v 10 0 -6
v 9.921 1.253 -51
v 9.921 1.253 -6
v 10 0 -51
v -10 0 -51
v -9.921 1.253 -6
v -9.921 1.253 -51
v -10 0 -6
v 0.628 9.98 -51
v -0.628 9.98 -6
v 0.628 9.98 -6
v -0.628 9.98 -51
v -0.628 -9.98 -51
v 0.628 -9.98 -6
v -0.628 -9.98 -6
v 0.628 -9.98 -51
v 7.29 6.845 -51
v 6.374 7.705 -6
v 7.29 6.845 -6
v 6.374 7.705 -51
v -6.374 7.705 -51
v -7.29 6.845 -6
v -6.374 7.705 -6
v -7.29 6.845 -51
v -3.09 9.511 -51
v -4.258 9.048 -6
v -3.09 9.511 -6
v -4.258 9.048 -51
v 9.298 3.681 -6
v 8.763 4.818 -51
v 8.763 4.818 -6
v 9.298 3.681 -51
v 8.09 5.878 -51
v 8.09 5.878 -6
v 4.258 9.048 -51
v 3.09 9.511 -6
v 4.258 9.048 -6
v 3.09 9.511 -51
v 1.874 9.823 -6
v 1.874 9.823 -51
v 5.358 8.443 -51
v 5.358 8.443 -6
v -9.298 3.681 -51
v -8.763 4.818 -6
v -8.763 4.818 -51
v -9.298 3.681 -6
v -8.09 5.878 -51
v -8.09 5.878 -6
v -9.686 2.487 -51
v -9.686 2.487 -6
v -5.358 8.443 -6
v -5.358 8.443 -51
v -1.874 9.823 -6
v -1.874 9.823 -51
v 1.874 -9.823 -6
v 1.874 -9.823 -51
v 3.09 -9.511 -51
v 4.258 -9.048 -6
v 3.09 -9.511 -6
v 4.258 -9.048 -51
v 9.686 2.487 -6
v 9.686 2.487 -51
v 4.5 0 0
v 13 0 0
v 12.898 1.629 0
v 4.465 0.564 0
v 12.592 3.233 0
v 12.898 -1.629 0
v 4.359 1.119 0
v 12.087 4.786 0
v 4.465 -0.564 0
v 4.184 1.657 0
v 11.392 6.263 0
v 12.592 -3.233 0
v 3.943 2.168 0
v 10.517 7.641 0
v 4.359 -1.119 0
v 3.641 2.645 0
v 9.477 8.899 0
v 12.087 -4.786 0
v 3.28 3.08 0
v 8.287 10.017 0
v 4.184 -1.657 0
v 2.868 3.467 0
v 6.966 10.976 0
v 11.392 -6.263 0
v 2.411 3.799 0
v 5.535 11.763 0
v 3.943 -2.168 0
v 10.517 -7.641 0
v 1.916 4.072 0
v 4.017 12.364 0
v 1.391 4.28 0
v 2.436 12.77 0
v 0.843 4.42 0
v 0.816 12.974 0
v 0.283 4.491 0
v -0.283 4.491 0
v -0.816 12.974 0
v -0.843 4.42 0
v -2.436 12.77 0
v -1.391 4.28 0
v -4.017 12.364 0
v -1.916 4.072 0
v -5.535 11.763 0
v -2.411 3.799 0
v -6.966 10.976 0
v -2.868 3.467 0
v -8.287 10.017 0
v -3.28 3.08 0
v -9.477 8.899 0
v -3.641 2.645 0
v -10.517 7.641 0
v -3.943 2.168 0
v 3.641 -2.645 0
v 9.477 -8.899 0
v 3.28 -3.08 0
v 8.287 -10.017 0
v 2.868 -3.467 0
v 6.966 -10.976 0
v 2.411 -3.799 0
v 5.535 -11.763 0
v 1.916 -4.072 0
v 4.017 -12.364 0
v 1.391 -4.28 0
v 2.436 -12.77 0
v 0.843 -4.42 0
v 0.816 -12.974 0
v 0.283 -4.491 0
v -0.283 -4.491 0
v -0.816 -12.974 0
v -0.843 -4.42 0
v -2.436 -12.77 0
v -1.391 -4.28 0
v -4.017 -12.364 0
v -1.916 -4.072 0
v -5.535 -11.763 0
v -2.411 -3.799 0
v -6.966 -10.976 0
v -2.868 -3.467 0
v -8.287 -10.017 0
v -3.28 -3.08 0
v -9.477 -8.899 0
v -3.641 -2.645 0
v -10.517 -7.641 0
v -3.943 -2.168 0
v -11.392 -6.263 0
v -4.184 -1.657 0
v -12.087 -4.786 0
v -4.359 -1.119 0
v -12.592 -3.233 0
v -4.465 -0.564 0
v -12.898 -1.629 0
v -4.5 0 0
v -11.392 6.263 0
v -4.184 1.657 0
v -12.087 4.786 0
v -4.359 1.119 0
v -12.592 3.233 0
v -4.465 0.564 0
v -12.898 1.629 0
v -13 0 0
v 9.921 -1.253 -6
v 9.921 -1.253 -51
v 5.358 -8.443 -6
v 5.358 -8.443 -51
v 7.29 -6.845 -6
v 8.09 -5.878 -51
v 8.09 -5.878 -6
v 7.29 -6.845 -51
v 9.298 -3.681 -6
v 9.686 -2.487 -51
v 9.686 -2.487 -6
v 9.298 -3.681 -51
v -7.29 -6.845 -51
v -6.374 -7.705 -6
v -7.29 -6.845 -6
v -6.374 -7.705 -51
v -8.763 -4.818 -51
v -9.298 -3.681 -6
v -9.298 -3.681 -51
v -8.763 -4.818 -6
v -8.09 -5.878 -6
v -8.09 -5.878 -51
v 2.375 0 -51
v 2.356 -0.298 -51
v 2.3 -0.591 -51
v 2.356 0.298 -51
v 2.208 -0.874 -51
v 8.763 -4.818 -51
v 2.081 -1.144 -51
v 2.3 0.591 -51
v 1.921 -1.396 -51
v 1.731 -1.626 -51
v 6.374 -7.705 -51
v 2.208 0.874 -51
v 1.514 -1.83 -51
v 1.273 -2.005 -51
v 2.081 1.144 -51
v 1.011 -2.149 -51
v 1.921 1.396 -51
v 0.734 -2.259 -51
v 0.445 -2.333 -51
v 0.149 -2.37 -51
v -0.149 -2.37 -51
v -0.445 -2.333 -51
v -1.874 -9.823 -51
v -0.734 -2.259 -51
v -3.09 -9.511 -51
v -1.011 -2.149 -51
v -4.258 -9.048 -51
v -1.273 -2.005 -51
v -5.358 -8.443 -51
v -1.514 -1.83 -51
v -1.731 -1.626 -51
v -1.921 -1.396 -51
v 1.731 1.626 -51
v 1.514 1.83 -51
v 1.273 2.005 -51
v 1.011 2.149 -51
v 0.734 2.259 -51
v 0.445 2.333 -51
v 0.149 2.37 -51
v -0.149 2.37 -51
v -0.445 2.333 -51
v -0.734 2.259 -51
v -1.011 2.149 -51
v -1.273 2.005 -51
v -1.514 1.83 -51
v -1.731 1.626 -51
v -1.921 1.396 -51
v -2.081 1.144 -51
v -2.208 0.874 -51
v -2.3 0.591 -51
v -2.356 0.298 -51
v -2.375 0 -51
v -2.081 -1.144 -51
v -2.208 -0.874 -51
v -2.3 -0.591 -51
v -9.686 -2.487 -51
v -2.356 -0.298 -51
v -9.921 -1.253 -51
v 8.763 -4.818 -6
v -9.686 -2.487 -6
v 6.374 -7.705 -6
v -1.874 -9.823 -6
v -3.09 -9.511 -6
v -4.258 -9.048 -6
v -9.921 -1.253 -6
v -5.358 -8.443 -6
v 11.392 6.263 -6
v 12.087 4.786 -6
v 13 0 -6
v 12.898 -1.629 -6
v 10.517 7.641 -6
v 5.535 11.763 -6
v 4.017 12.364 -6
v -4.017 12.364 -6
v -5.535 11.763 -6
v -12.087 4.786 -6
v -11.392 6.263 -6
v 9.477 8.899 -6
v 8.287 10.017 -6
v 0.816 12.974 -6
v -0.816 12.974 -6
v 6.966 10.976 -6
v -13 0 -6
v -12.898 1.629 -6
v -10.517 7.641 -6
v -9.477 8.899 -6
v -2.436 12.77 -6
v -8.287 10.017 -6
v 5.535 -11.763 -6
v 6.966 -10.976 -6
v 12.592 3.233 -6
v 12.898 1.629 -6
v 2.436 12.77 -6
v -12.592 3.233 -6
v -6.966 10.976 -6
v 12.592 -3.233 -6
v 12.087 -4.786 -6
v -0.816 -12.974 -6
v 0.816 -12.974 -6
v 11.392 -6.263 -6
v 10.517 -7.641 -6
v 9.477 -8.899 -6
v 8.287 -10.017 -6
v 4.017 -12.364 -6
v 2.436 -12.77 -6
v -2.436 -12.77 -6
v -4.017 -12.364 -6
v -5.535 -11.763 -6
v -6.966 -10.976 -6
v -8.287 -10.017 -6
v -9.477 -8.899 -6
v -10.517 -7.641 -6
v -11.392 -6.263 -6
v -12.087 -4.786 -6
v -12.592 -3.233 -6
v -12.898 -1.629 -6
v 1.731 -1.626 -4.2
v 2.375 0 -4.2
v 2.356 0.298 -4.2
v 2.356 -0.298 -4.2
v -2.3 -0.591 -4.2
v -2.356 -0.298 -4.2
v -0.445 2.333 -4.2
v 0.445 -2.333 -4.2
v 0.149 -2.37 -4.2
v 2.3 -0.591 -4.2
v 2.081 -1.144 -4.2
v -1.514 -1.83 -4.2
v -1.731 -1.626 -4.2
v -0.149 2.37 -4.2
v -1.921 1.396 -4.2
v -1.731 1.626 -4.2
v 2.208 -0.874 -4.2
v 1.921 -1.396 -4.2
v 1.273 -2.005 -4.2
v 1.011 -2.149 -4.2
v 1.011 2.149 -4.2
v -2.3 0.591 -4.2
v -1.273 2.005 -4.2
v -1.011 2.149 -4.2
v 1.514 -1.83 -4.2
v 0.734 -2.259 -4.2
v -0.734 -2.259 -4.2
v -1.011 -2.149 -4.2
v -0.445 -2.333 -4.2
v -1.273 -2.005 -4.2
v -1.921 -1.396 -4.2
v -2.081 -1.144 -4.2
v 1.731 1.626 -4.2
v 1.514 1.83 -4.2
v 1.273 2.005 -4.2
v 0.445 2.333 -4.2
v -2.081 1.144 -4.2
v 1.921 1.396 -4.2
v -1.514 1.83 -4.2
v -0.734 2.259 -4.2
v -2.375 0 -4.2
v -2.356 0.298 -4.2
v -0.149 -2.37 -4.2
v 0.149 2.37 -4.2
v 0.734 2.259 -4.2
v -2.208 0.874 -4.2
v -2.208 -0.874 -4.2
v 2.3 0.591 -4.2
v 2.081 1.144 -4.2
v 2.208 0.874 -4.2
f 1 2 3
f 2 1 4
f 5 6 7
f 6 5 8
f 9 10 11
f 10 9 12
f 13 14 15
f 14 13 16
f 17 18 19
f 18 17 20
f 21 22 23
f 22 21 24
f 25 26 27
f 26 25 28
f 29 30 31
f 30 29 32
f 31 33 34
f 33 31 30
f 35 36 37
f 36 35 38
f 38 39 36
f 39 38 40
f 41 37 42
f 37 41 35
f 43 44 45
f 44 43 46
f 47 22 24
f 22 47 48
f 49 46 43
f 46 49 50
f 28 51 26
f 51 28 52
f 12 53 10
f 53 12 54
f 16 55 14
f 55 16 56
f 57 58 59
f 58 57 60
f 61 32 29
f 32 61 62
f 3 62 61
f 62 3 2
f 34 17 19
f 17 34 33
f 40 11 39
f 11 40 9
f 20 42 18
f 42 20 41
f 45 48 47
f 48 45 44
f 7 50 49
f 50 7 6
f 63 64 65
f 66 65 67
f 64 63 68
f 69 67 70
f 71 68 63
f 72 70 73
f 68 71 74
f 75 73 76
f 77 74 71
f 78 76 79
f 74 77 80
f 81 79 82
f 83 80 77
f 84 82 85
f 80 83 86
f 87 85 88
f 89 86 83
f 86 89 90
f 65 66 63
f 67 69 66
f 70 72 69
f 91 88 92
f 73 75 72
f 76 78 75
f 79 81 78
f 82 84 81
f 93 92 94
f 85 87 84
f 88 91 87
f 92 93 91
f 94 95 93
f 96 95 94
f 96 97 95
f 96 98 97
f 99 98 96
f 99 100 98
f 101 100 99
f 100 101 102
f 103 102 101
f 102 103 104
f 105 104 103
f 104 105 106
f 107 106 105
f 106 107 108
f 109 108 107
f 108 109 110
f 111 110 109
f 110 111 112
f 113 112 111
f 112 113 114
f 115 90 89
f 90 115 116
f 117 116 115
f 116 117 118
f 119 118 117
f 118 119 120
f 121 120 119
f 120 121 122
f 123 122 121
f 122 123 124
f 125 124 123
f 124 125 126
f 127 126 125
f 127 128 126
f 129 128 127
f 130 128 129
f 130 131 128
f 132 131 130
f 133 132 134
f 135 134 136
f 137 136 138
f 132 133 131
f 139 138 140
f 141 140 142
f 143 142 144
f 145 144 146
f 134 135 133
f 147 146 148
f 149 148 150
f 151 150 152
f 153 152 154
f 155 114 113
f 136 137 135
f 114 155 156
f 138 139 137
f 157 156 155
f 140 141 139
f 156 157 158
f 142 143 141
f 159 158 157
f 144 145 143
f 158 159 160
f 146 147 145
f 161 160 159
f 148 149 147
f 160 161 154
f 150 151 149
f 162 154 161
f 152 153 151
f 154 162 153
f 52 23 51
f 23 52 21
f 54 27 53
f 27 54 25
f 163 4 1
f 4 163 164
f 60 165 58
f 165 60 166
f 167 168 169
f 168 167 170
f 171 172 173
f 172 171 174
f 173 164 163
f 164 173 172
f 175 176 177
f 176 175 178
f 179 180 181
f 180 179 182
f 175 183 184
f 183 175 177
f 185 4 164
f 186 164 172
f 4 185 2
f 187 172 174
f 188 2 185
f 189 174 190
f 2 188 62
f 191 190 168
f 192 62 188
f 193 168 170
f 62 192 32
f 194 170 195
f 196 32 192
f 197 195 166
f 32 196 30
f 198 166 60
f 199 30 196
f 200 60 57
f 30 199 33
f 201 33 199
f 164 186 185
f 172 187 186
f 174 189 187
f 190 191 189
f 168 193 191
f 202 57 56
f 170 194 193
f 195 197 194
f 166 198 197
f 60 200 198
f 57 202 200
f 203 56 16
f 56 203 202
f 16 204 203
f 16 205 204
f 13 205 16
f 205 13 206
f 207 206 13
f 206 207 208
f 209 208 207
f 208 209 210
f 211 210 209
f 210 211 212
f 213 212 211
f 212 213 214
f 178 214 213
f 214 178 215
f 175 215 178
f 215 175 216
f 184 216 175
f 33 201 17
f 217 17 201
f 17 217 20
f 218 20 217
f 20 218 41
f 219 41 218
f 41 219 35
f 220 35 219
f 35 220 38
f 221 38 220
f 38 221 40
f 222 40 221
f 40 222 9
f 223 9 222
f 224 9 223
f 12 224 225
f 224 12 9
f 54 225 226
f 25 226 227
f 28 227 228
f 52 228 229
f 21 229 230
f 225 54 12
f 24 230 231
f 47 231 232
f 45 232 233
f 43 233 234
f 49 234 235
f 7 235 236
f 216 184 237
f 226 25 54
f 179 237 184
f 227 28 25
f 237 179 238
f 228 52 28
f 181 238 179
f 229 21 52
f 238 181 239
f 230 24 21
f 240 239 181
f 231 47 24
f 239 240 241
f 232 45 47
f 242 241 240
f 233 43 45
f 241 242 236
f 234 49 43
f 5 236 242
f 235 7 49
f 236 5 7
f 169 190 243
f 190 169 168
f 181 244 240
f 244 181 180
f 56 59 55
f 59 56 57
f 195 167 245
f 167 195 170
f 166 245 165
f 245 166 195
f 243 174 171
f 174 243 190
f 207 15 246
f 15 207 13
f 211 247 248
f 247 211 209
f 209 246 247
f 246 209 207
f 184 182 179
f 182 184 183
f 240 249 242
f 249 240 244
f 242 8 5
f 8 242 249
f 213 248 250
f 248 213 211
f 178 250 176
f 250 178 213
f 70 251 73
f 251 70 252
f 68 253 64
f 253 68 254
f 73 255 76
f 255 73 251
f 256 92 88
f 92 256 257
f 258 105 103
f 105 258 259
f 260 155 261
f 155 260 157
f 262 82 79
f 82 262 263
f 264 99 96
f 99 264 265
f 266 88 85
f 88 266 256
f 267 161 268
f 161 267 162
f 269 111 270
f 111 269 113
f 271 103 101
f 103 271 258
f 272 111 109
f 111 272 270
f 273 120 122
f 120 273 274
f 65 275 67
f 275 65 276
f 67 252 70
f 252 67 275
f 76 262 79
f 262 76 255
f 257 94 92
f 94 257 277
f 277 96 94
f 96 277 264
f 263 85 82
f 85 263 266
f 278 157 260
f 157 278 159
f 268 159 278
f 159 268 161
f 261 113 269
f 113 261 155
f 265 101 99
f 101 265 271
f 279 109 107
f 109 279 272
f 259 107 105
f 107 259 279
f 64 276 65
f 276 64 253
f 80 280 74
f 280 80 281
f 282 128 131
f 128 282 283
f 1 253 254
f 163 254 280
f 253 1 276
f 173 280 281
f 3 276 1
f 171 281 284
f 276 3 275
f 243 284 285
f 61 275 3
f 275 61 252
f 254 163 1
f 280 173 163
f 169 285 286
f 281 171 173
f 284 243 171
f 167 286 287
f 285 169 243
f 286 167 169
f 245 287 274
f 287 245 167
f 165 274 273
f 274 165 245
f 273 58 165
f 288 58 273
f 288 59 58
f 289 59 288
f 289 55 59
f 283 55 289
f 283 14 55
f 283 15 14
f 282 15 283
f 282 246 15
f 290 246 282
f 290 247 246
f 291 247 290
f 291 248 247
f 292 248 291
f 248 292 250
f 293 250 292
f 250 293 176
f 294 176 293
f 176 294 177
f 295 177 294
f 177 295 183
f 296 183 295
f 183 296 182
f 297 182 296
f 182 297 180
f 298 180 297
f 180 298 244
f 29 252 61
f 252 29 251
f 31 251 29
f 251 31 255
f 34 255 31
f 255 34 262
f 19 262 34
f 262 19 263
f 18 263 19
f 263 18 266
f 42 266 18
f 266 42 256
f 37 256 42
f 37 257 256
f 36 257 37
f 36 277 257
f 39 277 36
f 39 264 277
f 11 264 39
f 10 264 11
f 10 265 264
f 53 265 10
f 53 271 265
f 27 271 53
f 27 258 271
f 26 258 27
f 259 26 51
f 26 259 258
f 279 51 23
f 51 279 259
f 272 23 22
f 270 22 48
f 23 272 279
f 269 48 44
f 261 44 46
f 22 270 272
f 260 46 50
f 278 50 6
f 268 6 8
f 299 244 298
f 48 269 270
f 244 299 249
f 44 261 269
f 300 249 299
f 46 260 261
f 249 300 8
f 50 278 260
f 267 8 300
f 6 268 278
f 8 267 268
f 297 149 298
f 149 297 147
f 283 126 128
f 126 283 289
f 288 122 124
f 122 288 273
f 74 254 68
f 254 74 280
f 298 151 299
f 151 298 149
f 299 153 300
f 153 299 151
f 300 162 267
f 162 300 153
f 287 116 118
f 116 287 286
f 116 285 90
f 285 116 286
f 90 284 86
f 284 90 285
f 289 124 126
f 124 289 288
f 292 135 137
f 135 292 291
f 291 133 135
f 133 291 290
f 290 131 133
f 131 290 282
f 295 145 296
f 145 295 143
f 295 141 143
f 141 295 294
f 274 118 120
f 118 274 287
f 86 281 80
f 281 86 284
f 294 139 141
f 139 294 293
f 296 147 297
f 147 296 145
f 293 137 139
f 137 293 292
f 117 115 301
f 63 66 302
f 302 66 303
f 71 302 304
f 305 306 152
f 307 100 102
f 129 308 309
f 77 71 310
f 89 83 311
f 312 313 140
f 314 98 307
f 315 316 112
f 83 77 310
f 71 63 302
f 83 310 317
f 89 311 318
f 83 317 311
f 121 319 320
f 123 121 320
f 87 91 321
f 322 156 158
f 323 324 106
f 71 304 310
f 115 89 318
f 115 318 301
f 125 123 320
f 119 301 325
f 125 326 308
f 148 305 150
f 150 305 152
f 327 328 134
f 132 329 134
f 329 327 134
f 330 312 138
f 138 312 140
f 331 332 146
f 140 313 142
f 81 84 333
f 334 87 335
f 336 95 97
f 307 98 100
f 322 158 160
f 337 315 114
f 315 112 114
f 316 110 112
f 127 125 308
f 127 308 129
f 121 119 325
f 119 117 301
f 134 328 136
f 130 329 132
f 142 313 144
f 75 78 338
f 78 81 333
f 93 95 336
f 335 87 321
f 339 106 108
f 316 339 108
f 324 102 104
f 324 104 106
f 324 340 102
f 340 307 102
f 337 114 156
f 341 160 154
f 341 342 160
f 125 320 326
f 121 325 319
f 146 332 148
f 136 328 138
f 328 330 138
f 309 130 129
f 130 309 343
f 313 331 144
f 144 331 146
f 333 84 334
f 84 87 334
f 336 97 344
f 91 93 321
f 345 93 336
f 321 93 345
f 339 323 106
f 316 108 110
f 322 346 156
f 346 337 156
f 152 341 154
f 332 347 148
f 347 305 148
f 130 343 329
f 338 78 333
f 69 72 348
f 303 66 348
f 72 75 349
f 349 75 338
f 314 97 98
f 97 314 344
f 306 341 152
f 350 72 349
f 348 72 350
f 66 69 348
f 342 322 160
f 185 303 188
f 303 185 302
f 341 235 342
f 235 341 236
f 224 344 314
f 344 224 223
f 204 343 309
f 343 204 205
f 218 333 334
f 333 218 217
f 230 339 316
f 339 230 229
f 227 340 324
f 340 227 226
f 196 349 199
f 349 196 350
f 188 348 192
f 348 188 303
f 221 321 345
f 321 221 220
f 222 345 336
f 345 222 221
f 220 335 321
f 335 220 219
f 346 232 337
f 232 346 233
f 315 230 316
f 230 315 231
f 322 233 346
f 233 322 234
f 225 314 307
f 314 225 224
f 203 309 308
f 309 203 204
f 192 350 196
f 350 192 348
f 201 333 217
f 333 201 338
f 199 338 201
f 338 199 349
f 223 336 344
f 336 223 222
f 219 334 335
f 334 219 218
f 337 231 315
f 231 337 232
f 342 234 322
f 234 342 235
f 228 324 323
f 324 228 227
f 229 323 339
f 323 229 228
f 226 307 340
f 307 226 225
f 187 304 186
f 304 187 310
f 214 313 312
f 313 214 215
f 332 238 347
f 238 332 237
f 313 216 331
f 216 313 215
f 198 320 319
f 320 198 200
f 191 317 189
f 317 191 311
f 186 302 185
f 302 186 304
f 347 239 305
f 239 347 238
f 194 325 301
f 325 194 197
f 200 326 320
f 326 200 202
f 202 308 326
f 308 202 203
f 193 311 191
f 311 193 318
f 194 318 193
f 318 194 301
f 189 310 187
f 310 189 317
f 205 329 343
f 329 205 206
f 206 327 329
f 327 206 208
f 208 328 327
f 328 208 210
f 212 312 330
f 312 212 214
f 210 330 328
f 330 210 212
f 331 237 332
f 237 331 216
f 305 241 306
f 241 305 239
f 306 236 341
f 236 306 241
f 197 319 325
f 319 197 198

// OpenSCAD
$fn = 50;


difference() {
	union() {
		translate(v = [0, 0, -51.0000000000]) {
			cylinder(h = 51, r = 10.0000000000);
		}
		translate(v = [0, 0, -6.0000000000]) {
			cylinder(h = 6, r = 13.0000000000);
		}
	}
	union() {
		translate(v = [0, 0, 0]) {
			rotate(a = [0, 0, 0]) {
				difference() {
					union() {
						#translate(v = [0, 0, -51.0000000000]) {
							cylinder(h = 51, r = 2.2500000000);
						}
						#translate(v = [0, 0, -4.2000000000]) {
							cylinder(h = 4.2000000000, r1 = 2.3750000000, r2 = 4.5000000000);
						}
						#translate(v = [0, 0, -51.0000000000]) {
							cylinder(h = 51, r = 2.3750000000);
						}
						#translate(v = [0, 0, -51.0000000000]) {
							cylinder(h = 51, r = 2.2500000000);
						}
					}
					union();
				}
			}
		}
	}
}
